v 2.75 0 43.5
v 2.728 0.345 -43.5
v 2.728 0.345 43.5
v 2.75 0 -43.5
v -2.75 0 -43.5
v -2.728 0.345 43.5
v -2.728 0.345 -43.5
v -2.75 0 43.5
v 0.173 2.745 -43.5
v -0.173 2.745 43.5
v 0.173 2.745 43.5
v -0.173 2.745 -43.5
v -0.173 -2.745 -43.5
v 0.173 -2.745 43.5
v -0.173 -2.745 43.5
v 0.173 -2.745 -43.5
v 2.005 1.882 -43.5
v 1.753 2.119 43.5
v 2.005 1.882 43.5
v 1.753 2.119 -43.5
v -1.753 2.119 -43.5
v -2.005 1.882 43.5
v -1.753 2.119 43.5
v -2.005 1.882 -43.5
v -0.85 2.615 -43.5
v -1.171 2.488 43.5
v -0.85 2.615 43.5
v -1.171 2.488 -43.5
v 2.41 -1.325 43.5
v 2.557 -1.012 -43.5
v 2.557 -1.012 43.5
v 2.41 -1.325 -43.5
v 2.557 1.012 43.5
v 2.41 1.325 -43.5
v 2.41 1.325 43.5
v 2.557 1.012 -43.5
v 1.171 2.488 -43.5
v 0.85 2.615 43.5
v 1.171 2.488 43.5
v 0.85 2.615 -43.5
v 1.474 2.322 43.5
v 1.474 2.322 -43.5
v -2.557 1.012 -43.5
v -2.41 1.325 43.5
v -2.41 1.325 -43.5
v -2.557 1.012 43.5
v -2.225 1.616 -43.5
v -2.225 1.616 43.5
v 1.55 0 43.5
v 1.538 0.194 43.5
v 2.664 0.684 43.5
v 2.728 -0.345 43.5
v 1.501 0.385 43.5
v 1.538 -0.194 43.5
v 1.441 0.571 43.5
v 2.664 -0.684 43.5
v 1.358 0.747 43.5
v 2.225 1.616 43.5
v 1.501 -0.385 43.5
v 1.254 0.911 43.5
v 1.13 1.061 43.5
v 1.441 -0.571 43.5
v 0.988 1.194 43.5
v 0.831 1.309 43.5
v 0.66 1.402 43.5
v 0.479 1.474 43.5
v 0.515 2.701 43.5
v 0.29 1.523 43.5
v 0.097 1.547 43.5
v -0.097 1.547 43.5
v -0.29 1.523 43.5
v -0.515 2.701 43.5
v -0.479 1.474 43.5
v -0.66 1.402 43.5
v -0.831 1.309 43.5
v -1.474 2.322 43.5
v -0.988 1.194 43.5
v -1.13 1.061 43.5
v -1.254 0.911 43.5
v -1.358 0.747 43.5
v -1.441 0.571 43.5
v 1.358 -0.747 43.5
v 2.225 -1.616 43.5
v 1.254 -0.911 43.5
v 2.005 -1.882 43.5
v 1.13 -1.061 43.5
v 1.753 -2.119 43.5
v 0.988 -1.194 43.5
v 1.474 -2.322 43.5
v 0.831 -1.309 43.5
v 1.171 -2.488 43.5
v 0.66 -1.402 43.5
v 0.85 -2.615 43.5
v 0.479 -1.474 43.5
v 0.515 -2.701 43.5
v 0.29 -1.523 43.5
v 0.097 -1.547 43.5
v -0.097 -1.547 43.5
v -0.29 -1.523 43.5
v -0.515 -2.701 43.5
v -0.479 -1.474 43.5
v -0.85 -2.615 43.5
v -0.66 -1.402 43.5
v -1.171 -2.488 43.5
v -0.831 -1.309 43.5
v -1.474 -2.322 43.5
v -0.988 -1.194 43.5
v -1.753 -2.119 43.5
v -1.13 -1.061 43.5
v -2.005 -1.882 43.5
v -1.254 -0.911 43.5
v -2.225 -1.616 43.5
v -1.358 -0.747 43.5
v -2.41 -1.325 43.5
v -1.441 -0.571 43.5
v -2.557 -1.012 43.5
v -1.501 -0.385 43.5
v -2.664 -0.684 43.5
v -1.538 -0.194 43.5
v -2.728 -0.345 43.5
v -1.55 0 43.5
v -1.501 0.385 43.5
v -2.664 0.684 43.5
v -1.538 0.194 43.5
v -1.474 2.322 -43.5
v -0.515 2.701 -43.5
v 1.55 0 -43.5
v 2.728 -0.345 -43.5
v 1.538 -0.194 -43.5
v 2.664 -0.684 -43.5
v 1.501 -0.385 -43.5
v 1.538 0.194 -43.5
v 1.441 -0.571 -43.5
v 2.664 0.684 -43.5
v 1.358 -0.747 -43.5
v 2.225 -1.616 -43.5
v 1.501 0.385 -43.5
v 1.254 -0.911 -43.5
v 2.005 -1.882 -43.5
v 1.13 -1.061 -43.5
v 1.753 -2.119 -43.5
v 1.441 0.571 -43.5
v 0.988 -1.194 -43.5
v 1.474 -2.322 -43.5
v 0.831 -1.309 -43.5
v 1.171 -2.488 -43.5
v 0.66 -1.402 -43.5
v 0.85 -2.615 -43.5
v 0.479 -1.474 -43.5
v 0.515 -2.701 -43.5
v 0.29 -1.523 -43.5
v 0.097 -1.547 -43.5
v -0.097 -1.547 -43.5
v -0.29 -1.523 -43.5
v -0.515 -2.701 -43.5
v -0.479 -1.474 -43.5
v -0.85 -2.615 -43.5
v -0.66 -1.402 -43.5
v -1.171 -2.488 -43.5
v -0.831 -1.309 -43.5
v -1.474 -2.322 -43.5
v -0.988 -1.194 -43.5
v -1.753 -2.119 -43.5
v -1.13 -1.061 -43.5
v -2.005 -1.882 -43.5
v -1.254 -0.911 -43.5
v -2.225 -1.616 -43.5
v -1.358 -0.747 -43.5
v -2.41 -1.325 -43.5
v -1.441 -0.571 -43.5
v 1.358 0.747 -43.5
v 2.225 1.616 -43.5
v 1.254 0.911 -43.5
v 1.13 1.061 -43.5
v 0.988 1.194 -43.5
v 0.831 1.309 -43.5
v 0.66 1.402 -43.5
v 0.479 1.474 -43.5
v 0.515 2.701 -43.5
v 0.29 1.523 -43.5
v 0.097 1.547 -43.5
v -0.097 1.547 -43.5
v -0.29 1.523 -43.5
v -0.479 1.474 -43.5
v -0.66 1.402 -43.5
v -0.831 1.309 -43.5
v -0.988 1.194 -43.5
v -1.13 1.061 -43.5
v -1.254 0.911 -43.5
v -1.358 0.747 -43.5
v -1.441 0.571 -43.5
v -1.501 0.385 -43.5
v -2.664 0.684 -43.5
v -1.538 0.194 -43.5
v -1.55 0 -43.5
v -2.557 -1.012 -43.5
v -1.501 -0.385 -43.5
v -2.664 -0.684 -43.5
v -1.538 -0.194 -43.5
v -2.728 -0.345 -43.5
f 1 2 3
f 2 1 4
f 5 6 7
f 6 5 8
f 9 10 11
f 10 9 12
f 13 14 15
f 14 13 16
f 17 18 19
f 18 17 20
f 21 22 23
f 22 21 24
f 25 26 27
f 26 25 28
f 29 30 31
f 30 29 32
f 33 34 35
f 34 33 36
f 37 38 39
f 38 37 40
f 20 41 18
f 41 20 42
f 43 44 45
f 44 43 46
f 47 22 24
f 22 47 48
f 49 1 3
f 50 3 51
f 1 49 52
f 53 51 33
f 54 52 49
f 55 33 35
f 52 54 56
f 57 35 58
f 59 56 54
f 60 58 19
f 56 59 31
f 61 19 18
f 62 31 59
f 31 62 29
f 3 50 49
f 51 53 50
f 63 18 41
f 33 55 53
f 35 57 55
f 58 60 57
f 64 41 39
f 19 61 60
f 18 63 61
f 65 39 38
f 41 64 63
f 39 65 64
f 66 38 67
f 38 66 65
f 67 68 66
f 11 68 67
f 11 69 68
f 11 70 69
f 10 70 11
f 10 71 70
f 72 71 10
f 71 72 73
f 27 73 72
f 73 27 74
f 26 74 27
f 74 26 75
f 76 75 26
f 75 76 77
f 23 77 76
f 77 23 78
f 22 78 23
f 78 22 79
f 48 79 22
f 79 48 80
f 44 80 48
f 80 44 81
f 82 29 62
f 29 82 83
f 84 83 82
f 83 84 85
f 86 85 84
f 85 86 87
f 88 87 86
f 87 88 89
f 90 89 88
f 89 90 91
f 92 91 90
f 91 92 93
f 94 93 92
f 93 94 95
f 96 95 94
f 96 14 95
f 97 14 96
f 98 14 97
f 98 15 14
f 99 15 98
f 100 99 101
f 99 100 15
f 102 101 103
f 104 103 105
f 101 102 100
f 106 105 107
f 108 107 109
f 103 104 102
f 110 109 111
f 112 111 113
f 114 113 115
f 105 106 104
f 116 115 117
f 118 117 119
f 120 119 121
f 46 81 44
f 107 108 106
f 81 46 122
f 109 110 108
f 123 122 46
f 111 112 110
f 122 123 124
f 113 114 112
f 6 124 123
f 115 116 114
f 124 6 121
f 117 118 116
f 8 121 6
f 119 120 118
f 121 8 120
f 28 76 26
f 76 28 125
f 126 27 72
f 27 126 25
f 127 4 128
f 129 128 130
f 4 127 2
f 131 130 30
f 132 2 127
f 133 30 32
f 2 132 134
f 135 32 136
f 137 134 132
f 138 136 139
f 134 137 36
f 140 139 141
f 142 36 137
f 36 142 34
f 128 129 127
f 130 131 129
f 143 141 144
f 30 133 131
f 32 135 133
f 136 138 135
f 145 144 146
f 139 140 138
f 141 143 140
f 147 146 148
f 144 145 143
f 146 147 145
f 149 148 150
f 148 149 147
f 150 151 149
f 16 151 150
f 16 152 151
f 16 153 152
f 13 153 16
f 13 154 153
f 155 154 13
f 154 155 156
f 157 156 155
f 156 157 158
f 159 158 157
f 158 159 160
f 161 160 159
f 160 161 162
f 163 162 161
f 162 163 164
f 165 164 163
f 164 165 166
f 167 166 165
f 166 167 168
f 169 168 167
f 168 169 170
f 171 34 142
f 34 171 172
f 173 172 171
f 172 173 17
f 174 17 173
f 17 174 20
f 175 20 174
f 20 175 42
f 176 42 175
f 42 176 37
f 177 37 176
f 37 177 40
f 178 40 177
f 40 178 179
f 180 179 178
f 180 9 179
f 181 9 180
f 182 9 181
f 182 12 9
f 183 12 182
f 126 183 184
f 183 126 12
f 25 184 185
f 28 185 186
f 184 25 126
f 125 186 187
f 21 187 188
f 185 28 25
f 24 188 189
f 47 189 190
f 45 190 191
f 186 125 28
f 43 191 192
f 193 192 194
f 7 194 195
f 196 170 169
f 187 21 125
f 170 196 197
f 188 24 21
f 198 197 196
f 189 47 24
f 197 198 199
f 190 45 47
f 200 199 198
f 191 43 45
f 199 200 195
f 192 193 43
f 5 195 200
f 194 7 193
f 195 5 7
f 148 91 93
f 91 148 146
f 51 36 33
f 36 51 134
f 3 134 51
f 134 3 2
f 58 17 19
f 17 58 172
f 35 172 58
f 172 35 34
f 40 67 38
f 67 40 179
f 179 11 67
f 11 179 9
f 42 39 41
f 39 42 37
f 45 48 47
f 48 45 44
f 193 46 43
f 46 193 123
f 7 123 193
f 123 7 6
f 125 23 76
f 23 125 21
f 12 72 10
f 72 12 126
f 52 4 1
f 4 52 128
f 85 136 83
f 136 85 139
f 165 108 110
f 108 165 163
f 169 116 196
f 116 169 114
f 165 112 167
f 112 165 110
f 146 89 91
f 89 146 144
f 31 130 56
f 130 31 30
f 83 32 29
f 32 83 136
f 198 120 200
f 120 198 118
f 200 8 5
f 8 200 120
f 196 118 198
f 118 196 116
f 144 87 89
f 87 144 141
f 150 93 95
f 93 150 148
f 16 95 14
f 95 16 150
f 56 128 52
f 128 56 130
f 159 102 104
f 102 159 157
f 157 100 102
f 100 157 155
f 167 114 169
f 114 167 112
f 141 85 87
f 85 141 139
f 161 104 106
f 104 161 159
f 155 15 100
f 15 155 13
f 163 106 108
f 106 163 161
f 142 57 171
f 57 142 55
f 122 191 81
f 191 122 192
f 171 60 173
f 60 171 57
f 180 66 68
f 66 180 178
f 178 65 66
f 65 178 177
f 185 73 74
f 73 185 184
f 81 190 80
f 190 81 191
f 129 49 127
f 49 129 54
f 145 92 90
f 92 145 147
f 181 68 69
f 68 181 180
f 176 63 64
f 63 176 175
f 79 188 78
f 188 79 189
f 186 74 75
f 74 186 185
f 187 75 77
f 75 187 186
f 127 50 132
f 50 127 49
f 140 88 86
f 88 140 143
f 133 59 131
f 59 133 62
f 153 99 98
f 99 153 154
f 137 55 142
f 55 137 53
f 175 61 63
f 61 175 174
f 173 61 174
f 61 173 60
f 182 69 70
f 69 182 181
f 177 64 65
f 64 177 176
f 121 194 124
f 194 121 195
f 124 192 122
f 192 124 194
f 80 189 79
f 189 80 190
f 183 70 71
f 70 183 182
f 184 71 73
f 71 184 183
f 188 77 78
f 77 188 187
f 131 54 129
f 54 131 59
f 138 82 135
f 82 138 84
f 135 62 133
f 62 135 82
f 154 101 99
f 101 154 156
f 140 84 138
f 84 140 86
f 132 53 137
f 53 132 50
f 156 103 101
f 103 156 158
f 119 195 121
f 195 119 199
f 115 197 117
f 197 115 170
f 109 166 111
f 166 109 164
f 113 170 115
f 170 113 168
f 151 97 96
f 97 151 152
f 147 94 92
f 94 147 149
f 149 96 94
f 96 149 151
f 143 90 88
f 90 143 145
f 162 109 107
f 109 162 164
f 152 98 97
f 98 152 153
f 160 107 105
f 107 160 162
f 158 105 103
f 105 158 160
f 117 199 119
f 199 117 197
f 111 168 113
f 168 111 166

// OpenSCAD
$fn = 50;


difference() {
	union() {
		translate(v = [0, 0, -43.5000000000]) {
			cylinder(h = 87, r = 2.7500000000);
		}
	}
	union() {
		translate(v = [0, 0, -100.0000000000]) {
			cylinder(h = 200, r = 1.5500000000);
		}
	}
}
